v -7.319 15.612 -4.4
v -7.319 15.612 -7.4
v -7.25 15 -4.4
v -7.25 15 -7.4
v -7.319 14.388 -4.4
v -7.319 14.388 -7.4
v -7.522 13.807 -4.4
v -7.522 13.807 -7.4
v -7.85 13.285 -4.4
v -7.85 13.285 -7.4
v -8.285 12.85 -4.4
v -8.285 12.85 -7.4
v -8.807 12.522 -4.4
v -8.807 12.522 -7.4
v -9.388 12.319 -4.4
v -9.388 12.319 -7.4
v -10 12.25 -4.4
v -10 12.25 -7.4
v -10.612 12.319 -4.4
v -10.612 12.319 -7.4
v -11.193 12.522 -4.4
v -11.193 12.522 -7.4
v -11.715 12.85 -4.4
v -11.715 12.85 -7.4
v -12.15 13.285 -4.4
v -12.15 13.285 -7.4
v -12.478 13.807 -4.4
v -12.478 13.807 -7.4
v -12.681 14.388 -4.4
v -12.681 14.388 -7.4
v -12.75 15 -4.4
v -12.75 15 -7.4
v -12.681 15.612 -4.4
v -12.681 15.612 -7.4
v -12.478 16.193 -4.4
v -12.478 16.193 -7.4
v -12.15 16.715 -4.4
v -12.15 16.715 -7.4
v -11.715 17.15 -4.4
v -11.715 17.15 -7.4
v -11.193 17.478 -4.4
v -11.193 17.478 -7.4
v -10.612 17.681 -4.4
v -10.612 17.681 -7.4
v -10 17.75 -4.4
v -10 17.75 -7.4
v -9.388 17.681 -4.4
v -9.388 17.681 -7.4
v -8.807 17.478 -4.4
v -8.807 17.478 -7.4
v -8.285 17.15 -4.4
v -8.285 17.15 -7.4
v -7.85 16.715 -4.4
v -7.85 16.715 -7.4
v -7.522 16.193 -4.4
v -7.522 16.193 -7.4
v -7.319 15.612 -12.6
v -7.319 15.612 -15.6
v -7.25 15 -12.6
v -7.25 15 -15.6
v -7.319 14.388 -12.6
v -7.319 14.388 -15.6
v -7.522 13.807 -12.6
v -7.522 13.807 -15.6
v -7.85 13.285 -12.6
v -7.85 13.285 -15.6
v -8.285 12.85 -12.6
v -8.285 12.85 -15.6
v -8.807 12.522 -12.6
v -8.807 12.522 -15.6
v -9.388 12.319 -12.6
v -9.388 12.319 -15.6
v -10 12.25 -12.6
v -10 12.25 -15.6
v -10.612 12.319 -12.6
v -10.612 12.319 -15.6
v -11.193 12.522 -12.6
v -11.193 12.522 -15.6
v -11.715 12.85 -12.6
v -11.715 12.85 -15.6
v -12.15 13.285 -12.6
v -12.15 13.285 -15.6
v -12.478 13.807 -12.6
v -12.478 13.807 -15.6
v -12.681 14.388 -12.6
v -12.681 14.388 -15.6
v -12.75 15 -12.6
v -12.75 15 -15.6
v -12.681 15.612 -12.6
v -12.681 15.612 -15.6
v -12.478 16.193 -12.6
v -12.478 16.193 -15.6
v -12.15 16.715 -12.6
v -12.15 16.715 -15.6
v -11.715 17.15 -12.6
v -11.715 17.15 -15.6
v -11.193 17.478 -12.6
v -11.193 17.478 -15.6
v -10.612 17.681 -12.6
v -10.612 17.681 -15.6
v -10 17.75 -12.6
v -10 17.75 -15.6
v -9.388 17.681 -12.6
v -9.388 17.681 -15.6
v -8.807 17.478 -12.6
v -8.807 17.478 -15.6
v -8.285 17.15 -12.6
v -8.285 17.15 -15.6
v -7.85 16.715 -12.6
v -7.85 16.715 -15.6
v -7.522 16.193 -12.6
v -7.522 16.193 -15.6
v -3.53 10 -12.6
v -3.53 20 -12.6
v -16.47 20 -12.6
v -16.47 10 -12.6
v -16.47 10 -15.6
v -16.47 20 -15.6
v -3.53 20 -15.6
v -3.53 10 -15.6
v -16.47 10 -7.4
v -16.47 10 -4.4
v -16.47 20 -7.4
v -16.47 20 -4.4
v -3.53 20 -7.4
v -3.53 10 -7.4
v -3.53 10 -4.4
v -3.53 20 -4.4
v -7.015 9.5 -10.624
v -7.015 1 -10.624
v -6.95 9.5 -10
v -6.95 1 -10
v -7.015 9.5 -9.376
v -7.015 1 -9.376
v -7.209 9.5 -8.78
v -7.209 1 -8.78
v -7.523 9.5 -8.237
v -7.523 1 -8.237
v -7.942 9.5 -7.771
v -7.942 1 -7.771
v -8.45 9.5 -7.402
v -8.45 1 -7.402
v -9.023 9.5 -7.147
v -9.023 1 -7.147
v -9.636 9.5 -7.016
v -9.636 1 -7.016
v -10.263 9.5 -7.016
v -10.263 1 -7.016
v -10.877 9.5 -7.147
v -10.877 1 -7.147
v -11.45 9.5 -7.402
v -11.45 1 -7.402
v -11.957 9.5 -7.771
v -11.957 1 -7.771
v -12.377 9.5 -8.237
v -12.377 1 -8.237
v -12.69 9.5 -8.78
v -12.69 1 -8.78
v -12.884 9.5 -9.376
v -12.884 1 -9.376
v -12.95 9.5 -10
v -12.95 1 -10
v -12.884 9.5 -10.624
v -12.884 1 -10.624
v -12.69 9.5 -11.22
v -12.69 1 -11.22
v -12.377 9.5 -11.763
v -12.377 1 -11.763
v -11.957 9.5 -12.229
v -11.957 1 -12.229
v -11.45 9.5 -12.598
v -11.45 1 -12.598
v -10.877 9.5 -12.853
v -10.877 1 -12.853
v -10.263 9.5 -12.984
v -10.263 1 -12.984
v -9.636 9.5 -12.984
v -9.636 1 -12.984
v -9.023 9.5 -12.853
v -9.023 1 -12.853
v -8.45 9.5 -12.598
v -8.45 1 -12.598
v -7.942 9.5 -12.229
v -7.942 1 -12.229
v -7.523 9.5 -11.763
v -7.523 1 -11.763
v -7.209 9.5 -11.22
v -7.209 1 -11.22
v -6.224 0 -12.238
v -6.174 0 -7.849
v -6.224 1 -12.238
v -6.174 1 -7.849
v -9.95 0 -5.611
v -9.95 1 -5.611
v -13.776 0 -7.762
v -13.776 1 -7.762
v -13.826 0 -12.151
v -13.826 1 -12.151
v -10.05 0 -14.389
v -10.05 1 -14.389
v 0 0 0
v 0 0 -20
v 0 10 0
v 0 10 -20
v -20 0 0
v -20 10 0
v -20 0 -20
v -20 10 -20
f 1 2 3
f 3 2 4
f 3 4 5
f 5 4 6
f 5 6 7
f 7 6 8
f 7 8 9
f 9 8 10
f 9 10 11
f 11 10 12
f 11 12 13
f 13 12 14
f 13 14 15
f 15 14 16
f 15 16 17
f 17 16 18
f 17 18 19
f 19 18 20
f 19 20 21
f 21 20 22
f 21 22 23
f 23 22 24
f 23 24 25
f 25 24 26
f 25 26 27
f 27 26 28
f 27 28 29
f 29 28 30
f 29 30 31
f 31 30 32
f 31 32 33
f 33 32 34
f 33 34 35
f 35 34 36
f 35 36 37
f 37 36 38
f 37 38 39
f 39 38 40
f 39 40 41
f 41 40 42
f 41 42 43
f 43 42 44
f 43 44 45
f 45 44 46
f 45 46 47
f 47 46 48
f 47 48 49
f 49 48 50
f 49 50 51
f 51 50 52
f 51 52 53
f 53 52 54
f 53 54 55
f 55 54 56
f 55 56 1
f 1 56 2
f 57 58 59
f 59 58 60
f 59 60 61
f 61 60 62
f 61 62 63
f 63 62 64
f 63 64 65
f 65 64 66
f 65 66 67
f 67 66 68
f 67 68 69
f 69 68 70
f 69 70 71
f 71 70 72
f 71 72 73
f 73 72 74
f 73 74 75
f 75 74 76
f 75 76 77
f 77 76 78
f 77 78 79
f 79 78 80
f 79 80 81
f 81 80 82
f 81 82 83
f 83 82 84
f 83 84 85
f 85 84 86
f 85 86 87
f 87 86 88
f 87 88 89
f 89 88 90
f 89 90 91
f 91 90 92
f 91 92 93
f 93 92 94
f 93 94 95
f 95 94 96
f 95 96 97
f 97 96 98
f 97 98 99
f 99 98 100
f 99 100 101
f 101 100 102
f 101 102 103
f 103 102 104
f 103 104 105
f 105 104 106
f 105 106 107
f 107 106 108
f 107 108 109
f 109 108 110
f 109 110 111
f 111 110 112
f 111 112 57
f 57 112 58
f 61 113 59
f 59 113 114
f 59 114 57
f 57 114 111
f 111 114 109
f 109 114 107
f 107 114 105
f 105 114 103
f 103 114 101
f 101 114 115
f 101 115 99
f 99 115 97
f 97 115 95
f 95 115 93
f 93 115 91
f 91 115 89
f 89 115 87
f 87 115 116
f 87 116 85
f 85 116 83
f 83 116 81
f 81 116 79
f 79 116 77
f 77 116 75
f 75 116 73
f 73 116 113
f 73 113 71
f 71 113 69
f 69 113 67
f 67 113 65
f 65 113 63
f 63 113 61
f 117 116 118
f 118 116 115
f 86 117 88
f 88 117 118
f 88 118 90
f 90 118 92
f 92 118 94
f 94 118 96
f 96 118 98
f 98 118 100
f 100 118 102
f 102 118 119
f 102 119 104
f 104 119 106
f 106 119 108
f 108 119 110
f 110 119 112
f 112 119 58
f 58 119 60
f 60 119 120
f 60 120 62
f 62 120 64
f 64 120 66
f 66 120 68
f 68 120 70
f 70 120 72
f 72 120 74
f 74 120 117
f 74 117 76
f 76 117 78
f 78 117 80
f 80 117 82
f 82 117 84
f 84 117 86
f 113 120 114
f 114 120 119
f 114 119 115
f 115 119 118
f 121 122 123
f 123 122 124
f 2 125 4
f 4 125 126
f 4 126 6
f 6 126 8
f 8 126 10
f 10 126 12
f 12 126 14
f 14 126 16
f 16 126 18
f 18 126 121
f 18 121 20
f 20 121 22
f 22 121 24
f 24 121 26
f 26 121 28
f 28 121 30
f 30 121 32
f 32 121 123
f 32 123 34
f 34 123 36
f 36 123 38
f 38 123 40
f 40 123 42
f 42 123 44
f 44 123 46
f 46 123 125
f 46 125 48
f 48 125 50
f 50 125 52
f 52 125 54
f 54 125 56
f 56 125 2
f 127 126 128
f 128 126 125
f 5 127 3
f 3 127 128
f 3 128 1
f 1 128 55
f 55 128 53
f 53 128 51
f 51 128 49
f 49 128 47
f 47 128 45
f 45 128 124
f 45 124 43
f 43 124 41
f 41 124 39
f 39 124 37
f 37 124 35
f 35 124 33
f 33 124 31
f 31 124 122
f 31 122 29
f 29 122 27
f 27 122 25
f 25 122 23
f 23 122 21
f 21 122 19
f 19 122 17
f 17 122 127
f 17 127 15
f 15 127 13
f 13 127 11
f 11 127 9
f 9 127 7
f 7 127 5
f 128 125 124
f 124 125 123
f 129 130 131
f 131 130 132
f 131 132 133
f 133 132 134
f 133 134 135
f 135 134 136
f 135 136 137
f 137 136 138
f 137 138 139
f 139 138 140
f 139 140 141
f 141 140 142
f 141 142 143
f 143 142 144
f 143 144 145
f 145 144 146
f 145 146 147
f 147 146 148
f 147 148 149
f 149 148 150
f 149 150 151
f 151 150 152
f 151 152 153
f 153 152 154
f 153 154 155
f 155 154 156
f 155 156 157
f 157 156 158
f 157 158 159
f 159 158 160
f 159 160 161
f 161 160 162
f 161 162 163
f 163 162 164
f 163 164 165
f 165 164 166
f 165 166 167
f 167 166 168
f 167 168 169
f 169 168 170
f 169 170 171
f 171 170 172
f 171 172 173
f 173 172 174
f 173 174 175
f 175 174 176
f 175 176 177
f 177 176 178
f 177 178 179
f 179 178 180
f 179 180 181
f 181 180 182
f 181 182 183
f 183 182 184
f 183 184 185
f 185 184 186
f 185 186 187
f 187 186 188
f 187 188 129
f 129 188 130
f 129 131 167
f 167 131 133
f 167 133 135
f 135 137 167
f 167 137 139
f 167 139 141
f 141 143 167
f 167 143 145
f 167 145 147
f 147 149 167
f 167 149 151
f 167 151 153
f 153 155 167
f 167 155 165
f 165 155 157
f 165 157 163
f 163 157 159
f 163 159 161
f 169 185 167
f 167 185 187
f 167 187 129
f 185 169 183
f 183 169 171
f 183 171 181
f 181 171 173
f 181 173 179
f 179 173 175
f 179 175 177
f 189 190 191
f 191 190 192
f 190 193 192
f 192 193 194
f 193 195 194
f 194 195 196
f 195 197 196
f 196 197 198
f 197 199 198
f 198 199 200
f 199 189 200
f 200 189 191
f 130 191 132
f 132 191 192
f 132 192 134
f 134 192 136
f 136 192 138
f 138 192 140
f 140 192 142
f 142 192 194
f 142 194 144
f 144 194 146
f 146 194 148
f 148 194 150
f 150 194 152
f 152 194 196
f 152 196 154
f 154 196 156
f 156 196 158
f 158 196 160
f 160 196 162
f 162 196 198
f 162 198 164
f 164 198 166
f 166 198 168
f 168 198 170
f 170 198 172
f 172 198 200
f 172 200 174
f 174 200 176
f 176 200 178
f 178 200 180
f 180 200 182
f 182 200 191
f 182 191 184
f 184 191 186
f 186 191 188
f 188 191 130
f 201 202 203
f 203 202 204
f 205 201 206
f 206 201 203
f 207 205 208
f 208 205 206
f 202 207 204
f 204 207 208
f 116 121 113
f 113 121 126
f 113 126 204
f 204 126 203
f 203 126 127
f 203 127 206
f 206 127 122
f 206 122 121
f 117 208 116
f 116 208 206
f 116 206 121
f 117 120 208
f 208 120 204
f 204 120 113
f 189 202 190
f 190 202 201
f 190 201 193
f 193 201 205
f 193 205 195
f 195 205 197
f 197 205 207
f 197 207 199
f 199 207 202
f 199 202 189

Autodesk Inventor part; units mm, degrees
ref_plane "YZ Plane" through (0, 0, 0) normal (1, 0, 0) x (0, 1, 0)
ref_plane "XZ Plane" through (0, 0, 0) normal (0, 1, 0) x (-1, 0, 0)
ref_plane "XY Plane" through (0, 0, 0) normal (0, 0, 1) x (1, 0, 0)
sketch "Sketch1" plane through (0, 0, 0) normal (0, 1, 0) x (-1, 0, 0)
  line L0 (0, 0) -> (20, 0)
  line L1 (20, 0) -> (20, -20)
  line L2 (20, -20) -> (0, -20)
  line L3 (0, -20) -> (0, 0)
  point P0 (0, -10)
  point P1 (20, -10)
  dimension "d0" = 20
  dimension "d1" = 20
extrude "Extrusion1" add sketch "Sketch1" along normal blind 10
sketch "Sketch2" plane through (0, 0, 0) normal (0, -1, 0) x (1, 0, 0)
  circle A0 centre (-10, -10) radius 2.1511
  line L0 (-20, 0) -> (0, 0) projected
  line L1 (-13.8262, -12.1511) -> (-13.776, -7.7619)
  line L2 (-13.776, -7.7619) -> (-9.9498, -5.6108)
  line L3 (-9.9498, -5.6108) -> (-6.1738, -7.8489)
  line L4 (-6.1738, -7.8489) -> (-6.224, -12.2381)
  line L5 (-6.224, -12.2381) -> (-10.0502, -14.3892)
  line L6 (-10.0502, -14.3892) -> (-13.8262, -12.1511)
  dimension "d4" = 10
extrude "Extrusion2" cut sketch "Sketch2" against normal blind 1 contours A0 | L1 L2 L3 L4 L5 L6
sketch "Sketch3" plane through (0, 1, 0) normal (0, -1, 0) x (1, 0, 0)
  circle A0 centre (-9.9498, -10) radius 3
  line L0 (-20, 0) -> (0, 0) projected
  point P0 (-10, 0)
  dimension "d7" = 6
  dimension "d8" = 10
extrude "Extrusion3" cut sketch "Sketch3" against normal blind 8.5
sketch "Sketch4" plane through (0, 10, 0) normal (0, 1, 0) x (1, 0, 0)
  line L0 (0, 0) -> (0, 20) projected
  line L1 (-20, 20) -> (-20, 0) projected
  line L2 (0, 0) -> (-20, 20)
  line L3 (-20, 20) -> (-20, 0)
  line L4 (-20, 0) -> (0, 20)
  line L5 (0, 20) -> (0, 10)
  line L6 (0, 10) -> (-20, 10)
  line L7 (-20, 0) -> (0, 0) projected
  line L8 (-10, 0) -> (-10, 20)
  line L9 (-3.5295, 15.6) -> (-10, 15.6)
  line L10 (-10, 15.6) -> (-10, 12.6)
  line L11 (-10, 12.6) -> (-3.5295, 12.6)
  line L12 (-3.5295, 12.6) -> (-3.5295, 15.6)
  line L13 (-16.4705, 15.6) -> (-10, 15.6)
  line L14 (-10, 12.6) -> (-16.4705, 12.6)
  line L15 (-16.4705, 12.6) -> (-16.4705, 15.6)
  line L16 (-3.5295, 4.4) -> (-10, 4.4)
  line L17 (-10, 7.4) -> (-3.5295, 7.4)
  line L18 (-3.5295, 7.4) -> (-3.5295, 4.4)
  line L19 (-10, 7.4) -> (-16.4705, 7.4)
  line L20 (-16.4705, 7.4) -> (-16.4705, 4.4)
  line L21 (-16.4705, 4.4) -> (-10, 4.4)
  point P0 (-6.7648, 12.6)
  point P1 (-6.7648, 15.6)
  dimension "d11" = 3
  dimension "d18" = 5.2
extrude "Extrusion4" add sketch "Sketch4" along normal blind 10 contours L16 L8 L17 L2 | L2 L17 L18 L16 | L21 L4 L19 L8 | L9 L12 L11 L4 | L4 L11 L8 L9 | L14 L15 L13 L2 | L2 L13 L8 L14 | L4 L21 L20 L19
sketch "Sketch5" plane through (-3.5295, 10, -15.6) normal (0, 0, -1) x (-1, 0, 0)
  circle A0 centre (6.4705, 5) radius 2.75
  line L0 (0, 10) -> (12.941, 10) projected
  line L1 (16.4705, 0) -> (-3.5295, 0) projected
  line L2 (0, 0) -> (0, 10) projected
  line L3 (12.941, 0) -> (12.941, 10) projected
  point P0 (-3.5295, -10)
  dimension "d14" = 5.5
  dimension "d15" = 5
  dimension "d19" = 10
  dimension "d20" = 12.941
extrude "Extrusion5" cut sketch "Sketch5" against normal blind 66.5 contours A0
properties part number "RollZ" material "Thermoplastic Resin"
